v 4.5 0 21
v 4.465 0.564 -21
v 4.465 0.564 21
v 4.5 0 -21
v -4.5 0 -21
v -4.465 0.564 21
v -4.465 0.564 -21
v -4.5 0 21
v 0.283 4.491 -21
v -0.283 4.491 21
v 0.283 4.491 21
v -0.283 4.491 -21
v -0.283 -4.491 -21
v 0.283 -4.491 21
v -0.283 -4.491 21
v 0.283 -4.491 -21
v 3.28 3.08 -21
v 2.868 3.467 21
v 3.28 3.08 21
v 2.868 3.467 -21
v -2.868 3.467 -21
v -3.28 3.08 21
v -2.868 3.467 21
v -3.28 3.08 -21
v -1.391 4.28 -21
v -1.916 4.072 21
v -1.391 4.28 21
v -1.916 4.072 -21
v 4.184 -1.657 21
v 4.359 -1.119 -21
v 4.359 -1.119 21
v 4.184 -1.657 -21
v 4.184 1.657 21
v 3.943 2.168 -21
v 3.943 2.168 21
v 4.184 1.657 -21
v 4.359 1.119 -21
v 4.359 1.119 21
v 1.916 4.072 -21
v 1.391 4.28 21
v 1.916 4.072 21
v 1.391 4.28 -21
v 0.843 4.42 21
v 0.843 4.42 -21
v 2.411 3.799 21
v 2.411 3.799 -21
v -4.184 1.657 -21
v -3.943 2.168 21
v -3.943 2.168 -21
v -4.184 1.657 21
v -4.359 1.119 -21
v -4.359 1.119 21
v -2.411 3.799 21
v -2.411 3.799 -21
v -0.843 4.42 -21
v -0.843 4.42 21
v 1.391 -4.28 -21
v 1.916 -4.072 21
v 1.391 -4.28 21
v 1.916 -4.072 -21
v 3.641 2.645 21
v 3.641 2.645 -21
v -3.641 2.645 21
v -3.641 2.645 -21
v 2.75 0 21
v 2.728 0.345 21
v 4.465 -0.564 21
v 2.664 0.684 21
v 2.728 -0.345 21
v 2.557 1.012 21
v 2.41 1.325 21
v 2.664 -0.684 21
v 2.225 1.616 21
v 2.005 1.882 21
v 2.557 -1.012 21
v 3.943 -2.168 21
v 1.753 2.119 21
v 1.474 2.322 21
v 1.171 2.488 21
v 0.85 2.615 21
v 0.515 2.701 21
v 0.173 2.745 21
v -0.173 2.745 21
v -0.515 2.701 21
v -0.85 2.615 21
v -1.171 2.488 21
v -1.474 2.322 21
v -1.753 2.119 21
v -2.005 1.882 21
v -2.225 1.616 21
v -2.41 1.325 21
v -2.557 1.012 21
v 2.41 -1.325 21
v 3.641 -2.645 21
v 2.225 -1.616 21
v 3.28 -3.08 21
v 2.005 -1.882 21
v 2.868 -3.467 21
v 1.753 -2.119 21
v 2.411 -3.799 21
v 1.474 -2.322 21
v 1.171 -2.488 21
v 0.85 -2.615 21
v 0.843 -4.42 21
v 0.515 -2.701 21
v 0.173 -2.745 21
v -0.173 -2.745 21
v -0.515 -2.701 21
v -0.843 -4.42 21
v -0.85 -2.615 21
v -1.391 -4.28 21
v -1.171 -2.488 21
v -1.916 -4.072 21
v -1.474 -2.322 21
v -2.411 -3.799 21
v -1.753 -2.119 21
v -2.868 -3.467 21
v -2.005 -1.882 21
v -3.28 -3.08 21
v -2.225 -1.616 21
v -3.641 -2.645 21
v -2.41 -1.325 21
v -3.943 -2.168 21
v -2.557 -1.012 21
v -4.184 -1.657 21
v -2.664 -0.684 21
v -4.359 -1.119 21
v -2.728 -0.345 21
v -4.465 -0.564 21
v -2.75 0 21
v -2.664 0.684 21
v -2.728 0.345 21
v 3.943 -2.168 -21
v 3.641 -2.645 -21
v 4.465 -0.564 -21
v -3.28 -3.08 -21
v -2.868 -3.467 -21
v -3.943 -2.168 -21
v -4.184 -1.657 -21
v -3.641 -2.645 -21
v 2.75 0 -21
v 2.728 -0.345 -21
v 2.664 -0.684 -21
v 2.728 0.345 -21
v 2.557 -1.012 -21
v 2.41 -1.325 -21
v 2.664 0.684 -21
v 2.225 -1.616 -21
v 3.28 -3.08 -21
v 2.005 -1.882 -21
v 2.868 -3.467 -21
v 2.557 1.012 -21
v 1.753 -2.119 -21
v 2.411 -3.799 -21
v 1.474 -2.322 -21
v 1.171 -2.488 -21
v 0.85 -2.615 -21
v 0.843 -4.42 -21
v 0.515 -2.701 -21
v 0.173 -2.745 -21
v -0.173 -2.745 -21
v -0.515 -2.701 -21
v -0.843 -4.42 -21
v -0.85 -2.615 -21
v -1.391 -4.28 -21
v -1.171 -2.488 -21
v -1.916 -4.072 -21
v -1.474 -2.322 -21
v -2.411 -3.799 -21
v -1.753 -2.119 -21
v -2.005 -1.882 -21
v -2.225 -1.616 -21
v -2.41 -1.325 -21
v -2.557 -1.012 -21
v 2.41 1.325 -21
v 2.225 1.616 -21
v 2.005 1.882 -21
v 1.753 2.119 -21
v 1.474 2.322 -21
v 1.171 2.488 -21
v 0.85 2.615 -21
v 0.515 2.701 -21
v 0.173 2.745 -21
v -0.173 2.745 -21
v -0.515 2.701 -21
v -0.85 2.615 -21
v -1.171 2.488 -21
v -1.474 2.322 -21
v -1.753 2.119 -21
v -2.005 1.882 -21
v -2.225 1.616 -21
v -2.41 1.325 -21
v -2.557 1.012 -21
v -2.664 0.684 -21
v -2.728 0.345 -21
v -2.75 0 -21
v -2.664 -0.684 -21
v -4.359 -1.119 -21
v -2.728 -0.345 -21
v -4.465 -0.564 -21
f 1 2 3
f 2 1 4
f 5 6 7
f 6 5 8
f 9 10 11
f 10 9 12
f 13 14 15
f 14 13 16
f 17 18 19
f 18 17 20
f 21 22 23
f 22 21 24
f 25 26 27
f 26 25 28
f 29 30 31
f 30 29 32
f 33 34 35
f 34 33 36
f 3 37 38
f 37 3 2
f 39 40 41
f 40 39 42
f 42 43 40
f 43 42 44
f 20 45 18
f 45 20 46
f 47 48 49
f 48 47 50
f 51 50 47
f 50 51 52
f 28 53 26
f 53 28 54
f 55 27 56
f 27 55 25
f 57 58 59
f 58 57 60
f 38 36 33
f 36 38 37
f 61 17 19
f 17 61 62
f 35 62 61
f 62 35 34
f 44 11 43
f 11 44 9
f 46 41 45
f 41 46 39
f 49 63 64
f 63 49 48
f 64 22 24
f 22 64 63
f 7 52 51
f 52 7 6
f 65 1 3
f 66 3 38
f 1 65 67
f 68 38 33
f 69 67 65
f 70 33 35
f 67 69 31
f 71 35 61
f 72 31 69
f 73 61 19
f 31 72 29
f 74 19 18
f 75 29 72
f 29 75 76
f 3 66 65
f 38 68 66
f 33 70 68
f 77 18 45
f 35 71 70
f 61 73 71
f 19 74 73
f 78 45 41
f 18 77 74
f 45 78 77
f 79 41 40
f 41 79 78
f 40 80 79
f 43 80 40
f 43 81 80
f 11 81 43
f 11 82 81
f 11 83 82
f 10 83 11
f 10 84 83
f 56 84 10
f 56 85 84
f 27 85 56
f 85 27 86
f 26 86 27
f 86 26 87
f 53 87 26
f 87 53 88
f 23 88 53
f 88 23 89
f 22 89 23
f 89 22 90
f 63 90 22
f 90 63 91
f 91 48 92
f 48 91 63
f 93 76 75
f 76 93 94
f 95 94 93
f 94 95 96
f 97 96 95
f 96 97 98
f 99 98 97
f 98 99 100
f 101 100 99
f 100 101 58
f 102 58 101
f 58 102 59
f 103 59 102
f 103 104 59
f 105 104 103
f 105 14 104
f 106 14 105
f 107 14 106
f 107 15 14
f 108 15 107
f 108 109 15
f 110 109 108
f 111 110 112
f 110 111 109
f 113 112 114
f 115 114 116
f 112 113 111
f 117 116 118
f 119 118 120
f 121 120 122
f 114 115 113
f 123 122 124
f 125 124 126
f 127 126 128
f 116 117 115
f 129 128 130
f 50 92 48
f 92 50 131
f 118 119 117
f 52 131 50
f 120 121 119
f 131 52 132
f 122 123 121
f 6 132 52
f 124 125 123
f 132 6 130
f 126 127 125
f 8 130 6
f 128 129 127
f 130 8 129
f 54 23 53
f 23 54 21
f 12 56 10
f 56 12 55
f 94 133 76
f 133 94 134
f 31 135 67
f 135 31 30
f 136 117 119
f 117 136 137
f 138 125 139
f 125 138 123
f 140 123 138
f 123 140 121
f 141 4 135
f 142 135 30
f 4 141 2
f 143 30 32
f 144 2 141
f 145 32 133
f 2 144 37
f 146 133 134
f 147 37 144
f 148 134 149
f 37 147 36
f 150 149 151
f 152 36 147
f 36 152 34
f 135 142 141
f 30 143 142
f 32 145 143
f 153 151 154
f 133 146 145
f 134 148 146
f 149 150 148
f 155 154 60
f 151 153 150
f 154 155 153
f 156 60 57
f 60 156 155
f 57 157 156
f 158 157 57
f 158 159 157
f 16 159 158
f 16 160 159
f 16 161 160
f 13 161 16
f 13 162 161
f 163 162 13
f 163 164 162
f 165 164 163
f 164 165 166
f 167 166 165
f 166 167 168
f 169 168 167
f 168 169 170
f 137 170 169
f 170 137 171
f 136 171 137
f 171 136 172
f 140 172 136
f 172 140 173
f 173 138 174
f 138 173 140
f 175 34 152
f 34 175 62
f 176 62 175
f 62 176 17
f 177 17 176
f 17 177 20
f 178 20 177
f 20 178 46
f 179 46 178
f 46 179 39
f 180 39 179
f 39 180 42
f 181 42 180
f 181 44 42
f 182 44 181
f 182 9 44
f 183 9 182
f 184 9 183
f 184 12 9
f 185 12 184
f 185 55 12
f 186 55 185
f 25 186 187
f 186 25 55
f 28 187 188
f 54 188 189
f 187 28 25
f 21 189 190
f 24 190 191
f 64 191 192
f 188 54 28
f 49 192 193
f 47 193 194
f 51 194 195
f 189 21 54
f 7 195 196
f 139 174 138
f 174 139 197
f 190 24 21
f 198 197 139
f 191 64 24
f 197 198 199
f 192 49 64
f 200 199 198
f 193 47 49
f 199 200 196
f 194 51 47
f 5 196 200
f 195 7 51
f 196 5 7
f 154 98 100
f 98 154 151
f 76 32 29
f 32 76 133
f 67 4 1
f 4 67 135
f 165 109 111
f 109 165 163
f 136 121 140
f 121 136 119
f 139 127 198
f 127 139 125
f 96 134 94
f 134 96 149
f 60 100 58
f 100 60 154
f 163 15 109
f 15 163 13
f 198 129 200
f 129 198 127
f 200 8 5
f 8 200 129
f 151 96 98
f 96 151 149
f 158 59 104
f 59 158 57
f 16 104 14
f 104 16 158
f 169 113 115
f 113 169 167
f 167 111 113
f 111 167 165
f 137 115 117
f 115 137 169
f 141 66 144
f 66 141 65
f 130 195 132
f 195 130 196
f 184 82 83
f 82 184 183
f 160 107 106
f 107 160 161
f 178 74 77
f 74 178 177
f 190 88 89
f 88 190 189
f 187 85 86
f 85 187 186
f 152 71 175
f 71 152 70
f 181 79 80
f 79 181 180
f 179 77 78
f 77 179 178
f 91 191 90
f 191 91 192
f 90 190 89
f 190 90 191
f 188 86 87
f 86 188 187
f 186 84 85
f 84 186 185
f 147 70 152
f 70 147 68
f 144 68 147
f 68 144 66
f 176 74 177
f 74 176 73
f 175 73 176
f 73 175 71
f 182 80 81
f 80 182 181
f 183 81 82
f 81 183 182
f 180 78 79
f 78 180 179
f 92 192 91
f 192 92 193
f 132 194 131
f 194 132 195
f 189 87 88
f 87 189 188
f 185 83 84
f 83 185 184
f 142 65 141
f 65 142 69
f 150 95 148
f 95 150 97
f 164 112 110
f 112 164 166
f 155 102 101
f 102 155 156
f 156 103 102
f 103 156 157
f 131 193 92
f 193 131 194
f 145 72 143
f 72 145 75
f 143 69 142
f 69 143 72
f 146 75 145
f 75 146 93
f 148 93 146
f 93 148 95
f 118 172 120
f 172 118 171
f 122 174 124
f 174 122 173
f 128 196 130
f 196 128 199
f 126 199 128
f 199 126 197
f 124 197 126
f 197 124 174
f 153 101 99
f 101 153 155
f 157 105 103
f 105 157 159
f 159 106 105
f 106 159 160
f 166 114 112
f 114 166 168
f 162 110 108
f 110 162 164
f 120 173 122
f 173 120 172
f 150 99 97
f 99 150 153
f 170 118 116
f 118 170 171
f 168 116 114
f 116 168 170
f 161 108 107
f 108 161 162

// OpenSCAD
$fn = 50;


difference() {
	union() {
		translate(v = [0, 0, -21.0000000000]) {
			cylinder(h = 42, r = 4.5000000000);
		}
	}
	union() {
		translate(v = [0, 0, -100.0000000000]) {
			cylinder(h = 200, r = 2.7500000000);
		}
	}
}
